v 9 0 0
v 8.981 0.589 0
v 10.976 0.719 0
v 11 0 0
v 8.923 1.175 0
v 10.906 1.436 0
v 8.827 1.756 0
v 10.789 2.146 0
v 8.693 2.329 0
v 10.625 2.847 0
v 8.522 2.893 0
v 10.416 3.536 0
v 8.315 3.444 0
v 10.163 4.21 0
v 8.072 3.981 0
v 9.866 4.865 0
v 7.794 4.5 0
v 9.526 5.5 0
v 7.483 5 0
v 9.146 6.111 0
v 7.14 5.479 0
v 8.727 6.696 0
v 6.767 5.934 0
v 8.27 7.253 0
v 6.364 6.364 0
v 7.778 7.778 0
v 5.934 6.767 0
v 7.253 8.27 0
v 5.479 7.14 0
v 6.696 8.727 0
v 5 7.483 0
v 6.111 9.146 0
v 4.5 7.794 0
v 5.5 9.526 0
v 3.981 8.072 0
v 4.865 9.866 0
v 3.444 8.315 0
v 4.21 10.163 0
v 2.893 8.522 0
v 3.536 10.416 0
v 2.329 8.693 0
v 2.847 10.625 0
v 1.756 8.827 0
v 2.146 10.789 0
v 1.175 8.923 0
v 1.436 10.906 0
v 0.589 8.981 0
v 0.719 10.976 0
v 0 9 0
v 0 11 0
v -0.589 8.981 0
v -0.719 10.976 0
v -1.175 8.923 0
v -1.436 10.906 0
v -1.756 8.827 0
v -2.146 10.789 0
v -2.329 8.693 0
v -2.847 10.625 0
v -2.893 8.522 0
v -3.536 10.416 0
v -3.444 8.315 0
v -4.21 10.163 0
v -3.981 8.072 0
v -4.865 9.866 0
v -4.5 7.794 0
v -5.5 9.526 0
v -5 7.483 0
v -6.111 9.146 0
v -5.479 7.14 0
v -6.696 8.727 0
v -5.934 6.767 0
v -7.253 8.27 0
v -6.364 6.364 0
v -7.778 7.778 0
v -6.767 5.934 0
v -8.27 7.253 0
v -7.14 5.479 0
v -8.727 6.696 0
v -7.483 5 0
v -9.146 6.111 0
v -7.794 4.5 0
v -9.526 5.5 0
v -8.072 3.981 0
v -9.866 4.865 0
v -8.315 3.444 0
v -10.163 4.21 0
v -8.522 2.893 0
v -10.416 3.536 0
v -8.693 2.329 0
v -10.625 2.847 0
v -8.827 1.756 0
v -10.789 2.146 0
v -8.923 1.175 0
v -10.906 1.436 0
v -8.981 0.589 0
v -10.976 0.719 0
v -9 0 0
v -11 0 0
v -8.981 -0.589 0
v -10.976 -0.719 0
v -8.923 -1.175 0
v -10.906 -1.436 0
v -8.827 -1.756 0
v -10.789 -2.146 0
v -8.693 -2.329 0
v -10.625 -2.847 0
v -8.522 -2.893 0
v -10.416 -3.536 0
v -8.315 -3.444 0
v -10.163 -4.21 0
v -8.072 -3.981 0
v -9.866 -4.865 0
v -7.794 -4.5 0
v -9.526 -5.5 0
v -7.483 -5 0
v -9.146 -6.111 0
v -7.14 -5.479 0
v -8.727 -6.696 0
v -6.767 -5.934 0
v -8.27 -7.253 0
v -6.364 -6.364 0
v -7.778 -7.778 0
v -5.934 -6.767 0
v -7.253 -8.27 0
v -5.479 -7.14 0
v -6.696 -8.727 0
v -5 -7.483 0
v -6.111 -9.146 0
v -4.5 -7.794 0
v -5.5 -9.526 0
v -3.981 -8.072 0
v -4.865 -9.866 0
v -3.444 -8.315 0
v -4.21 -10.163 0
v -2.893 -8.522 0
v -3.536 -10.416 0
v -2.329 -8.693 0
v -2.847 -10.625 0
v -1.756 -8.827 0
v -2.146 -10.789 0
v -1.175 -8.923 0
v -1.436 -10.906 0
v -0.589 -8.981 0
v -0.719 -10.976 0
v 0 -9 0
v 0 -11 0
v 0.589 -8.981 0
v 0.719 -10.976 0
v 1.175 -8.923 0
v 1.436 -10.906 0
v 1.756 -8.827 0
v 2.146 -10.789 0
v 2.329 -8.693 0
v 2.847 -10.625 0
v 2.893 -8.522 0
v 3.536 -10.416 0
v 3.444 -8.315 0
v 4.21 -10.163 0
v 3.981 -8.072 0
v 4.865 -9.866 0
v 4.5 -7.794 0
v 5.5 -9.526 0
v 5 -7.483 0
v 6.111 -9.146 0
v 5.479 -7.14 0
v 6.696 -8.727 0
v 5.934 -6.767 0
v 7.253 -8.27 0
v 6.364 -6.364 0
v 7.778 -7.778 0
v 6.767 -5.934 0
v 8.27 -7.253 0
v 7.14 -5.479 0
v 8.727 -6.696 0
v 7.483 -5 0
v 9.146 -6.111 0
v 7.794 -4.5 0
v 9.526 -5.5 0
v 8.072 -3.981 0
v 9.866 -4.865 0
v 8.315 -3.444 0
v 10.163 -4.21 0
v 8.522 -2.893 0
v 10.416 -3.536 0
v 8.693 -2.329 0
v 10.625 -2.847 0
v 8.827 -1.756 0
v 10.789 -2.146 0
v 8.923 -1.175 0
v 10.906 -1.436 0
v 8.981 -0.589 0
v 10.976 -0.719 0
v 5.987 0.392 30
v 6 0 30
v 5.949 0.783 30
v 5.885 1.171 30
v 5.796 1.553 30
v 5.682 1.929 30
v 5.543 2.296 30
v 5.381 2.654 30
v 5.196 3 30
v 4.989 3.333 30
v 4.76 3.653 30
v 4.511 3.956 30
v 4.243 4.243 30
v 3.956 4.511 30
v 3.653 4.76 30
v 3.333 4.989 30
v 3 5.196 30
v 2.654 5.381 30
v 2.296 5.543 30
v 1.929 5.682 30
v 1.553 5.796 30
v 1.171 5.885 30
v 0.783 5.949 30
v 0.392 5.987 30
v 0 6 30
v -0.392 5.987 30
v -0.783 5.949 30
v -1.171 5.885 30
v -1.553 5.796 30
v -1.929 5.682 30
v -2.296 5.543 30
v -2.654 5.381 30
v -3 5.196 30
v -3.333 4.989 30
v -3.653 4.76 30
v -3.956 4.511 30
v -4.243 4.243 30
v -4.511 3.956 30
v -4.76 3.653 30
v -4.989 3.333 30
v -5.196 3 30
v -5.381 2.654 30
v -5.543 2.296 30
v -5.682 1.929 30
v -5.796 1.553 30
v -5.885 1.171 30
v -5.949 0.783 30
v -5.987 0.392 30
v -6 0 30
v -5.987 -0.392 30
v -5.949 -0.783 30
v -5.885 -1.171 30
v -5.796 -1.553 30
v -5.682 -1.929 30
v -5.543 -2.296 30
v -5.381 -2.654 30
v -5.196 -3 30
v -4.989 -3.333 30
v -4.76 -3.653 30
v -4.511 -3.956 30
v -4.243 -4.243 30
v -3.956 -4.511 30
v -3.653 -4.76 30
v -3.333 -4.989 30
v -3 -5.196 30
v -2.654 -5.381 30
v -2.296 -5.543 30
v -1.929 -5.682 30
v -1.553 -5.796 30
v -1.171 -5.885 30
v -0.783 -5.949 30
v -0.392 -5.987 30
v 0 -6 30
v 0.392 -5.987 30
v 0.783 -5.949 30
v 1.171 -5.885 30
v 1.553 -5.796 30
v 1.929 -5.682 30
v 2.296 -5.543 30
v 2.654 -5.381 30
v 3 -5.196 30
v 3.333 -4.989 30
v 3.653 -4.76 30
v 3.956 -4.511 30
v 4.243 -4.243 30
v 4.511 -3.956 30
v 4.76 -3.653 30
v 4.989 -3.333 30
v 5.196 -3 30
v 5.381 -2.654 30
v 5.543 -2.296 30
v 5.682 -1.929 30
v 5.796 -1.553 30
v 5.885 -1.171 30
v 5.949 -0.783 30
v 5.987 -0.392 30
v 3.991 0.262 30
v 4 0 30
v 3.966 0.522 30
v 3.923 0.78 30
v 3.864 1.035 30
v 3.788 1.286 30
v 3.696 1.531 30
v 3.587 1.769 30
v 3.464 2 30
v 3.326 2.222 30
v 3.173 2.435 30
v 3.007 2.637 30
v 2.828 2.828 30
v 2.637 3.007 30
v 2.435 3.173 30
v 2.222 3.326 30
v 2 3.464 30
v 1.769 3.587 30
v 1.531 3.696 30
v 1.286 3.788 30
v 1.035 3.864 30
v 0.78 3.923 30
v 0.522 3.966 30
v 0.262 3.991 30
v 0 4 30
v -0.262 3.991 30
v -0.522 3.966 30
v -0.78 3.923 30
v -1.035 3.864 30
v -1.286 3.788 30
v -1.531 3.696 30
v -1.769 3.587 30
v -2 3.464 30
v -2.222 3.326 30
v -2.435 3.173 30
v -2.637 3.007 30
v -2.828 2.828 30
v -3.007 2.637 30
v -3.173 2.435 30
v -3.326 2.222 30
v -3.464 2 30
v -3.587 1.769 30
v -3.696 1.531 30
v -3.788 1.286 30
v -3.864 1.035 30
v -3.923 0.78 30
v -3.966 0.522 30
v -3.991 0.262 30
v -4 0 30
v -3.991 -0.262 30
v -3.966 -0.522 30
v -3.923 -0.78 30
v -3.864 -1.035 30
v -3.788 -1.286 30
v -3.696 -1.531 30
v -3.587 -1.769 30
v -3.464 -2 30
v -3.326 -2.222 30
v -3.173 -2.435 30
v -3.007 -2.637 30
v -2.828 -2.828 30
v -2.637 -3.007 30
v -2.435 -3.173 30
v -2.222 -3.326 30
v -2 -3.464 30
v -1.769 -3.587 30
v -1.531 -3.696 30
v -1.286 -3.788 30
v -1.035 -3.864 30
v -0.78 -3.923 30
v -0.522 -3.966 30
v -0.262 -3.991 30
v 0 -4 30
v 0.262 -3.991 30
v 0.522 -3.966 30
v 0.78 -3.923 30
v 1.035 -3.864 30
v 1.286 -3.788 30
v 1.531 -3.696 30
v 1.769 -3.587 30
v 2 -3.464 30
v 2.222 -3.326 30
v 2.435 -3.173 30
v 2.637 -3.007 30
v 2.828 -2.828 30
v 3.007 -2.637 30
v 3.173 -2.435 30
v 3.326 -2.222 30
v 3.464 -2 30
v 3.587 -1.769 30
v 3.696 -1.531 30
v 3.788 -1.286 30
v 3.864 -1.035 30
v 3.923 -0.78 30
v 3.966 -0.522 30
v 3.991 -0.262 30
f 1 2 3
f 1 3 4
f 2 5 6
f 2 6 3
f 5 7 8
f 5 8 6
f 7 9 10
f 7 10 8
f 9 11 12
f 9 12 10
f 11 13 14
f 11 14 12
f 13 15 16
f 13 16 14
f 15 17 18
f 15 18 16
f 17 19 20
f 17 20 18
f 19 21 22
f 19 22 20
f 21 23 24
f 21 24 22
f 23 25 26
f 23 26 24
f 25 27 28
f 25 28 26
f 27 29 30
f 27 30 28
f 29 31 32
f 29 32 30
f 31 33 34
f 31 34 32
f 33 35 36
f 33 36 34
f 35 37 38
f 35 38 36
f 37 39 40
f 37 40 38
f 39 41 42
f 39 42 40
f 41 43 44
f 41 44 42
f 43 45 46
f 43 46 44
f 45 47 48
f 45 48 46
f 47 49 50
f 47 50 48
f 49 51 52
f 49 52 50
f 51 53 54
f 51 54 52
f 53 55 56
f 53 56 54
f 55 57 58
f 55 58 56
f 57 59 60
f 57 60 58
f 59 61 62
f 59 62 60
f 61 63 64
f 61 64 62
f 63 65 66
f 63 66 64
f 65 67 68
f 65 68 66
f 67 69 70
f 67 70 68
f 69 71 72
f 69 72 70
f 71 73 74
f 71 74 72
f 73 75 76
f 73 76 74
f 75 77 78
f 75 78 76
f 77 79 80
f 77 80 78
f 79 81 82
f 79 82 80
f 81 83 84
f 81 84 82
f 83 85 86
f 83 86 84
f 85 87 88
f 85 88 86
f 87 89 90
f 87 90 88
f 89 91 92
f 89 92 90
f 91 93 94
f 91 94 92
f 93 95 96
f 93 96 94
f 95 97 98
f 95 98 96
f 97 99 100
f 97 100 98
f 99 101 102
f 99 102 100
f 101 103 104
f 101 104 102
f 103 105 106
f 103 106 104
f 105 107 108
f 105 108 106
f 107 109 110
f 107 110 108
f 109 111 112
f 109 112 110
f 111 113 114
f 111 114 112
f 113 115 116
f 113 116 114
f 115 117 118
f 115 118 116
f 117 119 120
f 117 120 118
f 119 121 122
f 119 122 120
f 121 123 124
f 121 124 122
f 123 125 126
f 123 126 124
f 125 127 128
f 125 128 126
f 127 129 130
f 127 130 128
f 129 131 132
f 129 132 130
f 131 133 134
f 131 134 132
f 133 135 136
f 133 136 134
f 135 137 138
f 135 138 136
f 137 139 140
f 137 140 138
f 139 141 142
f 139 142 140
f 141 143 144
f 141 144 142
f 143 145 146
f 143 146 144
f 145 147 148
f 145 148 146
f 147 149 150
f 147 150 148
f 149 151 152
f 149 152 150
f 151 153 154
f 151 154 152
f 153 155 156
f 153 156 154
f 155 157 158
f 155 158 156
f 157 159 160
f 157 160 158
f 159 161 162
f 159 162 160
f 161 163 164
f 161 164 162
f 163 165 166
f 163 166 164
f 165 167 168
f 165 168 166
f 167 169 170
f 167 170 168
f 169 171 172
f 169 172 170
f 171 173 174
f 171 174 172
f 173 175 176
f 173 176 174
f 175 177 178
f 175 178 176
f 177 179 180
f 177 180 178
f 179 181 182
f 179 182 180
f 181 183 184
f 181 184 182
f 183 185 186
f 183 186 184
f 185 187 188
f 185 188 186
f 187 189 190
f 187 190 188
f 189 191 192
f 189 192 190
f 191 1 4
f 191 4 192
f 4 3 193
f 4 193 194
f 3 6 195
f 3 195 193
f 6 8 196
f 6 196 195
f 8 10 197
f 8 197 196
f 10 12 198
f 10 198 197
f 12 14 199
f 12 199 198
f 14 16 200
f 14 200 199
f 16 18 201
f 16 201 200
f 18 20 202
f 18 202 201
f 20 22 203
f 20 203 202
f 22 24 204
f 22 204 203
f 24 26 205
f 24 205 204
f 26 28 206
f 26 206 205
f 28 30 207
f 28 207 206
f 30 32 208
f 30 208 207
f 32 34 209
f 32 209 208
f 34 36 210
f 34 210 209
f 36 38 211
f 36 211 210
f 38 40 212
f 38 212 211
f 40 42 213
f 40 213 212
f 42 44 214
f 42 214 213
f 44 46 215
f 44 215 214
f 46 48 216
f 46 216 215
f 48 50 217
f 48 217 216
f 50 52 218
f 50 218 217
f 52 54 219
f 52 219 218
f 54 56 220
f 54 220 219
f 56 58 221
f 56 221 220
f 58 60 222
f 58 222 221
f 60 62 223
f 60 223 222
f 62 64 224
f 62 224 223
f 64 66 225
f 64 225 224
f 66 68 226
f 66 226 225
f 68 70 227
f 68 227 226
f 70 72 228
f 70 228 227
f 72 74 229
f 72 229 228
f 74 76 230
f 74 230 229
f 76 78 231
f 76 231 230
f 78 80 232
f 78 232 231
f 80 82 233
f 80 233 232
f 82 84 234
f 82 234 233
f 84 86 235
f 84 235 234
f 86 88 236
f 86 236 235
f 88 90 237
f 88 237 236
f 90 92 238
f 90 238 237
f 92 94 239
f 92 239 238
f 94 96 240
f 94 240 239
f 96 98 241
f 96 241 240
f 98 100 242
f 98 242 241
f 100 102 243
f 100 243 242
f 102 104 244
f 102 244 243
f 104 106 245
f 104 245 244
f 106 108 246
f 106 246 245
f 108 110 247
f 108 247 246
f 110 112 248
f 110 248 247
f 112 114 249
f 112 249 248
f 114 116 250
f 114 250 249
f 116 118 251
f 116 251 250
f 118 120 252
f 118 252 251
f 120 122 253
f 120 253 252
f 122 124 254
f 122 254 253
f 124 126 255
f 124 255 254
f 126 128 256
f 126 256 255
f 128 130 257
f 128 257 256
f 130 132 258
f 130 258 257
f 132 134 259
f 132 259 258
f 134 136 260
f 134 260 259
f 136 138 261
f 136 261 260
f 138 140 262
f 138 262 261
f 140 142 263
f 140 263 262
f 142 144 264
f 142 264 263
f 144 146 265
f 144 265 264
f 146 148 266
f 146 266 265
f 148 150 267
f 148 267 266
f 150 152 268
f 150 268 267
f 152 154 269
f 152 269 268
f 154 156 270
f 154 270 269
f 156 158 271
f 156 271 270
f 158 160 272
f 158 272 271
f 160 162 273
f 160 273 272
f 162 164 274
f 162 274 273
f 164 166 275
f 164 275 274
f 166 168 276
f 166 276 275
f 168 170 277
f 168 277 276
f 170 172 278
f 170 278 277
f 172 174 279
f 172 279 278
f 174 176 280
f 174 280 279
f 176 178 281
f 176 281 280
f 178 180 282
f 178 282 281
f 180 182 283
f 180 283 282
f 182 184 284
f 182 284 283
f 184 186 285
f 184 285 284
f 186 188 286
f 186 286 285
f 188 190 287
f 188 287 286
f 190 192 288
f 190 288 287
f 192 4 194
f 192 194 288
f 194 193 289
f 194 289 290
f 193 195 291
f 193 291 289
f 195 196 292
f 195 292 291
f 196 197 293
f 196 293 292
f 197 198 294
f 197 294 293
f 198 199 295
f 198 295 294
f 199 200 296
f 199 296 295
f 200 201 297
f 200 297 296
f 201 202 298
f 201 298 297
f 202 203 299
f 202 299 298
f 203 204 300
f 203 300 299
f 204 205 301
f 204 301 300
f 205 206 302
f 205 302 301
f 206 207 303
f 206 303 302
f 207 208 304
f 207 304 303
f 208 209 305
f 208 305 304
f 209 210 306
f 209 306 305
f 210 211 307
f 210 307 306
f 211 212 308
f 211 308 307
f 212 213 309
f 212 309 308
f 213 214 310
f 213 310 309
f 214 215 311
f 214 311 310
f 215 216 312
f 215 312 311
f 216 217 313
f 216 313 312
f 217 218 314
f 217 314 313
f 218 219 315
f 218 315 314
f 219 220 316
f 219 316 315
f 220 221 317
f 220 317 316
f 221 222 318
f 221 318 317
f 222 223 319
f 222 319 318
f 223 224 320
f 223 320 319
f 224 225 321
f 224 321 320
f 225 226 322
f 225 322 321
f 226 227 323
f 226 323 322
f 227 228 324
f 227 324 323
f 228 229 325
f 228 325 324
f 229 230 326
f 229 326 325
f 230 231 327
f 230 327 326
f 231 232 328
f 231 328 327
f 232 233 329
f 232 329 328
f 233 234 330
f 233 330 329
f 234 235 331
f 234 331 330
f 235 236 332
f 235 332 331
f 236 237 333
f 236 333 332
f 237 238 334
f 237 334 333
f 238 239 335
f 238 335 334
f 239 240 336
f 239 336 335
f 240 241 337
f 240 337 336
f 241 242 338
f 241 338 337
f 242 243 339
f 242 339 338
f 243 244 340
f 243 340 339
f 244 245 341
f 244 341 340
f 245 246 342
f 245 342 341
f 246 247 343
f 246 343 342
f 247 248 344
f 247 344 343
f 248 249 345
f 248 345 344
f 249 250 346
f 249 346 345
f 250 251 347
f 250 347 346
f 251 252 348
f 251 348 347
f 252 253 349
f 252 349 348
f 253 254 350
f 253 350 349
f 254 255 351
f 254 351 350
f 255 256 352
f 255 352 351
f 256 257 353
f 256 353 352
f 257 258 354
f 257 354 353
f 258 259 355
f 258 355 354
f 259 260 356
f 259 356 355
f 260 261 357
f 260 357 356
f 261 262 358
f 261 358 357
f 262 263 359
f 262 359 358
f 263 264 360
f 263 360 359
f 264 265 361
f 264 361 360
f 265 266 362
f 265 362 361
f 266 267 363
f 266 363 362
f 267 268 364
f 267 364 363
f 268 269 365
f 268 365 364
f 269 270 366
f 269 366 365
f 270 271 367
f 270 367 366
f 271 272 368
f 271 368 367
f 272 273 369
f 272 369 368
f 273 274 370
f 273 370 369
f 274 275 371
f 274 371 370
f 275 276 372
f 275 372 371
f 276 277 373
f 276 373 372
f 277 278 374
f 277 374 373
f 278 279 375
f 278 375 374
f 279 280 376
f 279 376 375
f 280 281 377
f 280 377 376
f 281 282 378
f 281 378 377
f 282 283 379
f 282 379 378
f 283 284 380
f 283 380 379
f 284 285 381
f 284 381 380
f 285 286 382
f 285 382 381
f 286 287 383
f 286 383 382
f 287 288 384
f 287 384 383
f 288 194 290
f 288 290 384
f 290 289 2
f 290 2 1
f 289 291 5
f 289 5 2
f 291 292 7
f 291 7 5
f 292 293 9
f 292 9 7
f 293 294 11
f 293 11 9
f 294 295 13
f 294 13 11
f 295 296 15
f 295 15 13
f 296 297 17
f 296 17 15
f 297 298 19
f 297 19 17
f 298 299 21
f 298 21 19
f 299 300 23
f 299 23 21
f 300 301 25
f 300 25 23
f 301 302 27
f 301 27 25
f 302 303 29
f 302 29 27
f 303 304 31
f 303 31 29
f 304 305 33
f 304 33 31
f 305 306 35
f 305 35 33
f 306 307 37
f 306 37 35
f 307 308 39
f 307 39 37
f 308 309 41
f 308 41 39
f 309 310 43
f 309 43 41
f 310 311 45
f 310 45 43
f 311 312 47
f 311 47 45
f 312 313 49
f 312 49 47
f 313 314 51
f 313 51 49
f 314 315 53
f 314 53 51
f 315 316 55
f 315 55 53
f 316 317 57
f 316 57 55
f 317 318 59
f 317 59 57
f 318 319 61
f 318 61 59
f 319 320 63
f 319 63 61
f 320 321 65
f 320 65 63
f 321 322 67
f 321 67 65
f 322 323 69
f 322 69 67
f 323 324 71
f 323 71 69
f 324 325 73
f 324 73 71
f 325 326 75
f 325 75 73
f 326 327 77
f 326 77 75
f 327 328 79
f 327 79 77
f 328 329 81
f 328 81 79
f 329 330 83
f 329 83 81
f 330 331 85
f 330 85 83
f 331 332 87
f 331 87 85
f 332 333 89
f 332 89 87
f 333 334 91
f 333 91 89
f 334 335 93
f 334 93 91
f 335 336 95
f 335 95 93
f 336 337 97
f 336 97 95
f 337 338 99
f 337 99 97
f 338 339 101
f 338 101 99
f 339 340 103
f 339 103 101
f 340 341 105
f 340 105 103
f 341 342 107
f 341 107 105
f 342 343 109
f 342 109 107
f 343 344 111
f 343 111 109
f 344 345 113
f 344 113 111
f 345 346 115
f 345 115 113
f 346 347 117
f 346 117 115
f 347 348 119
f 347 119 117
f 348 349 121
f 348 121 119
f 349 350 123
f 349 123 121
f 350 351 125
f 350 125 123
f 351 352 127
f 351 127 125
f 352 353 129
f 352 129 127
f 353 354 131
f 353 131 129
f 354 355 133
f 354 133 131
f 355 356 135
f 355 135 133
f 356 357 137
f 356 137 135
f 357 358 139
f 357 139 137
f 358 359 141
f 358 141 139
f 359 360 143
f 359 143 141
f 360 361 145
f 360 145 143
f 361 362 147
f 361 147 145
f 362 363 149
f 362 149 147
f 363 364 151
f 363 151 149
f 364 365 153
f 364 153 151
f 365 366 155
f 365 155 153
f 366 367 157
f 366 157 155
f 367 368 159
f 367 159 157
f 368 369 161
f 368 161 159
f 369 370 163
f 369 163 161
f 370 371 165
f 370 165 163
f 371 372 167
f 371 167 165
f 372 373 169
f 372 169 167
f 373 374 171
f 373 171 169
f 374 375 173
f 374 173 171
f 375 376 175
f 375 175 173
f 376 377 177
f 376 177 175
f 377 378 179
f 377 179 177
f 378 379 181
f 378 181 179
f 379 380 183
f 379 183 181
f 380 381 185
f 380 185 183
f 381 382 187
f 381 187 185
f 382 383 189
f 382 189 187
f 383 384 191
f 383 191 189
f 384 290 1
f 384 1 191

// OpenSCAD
// Original MechIntel educational model. CC0-1.0. Units: mm.
// Not a standardized or load-rated component.
$fn=96;
// Section points: [radius, height], mm. Edit to change the profile.
section=[[9, 0], [11, 0], [6, 30], [4, 30]];
rotate_extrude($fn=96) polygon(points=section);
